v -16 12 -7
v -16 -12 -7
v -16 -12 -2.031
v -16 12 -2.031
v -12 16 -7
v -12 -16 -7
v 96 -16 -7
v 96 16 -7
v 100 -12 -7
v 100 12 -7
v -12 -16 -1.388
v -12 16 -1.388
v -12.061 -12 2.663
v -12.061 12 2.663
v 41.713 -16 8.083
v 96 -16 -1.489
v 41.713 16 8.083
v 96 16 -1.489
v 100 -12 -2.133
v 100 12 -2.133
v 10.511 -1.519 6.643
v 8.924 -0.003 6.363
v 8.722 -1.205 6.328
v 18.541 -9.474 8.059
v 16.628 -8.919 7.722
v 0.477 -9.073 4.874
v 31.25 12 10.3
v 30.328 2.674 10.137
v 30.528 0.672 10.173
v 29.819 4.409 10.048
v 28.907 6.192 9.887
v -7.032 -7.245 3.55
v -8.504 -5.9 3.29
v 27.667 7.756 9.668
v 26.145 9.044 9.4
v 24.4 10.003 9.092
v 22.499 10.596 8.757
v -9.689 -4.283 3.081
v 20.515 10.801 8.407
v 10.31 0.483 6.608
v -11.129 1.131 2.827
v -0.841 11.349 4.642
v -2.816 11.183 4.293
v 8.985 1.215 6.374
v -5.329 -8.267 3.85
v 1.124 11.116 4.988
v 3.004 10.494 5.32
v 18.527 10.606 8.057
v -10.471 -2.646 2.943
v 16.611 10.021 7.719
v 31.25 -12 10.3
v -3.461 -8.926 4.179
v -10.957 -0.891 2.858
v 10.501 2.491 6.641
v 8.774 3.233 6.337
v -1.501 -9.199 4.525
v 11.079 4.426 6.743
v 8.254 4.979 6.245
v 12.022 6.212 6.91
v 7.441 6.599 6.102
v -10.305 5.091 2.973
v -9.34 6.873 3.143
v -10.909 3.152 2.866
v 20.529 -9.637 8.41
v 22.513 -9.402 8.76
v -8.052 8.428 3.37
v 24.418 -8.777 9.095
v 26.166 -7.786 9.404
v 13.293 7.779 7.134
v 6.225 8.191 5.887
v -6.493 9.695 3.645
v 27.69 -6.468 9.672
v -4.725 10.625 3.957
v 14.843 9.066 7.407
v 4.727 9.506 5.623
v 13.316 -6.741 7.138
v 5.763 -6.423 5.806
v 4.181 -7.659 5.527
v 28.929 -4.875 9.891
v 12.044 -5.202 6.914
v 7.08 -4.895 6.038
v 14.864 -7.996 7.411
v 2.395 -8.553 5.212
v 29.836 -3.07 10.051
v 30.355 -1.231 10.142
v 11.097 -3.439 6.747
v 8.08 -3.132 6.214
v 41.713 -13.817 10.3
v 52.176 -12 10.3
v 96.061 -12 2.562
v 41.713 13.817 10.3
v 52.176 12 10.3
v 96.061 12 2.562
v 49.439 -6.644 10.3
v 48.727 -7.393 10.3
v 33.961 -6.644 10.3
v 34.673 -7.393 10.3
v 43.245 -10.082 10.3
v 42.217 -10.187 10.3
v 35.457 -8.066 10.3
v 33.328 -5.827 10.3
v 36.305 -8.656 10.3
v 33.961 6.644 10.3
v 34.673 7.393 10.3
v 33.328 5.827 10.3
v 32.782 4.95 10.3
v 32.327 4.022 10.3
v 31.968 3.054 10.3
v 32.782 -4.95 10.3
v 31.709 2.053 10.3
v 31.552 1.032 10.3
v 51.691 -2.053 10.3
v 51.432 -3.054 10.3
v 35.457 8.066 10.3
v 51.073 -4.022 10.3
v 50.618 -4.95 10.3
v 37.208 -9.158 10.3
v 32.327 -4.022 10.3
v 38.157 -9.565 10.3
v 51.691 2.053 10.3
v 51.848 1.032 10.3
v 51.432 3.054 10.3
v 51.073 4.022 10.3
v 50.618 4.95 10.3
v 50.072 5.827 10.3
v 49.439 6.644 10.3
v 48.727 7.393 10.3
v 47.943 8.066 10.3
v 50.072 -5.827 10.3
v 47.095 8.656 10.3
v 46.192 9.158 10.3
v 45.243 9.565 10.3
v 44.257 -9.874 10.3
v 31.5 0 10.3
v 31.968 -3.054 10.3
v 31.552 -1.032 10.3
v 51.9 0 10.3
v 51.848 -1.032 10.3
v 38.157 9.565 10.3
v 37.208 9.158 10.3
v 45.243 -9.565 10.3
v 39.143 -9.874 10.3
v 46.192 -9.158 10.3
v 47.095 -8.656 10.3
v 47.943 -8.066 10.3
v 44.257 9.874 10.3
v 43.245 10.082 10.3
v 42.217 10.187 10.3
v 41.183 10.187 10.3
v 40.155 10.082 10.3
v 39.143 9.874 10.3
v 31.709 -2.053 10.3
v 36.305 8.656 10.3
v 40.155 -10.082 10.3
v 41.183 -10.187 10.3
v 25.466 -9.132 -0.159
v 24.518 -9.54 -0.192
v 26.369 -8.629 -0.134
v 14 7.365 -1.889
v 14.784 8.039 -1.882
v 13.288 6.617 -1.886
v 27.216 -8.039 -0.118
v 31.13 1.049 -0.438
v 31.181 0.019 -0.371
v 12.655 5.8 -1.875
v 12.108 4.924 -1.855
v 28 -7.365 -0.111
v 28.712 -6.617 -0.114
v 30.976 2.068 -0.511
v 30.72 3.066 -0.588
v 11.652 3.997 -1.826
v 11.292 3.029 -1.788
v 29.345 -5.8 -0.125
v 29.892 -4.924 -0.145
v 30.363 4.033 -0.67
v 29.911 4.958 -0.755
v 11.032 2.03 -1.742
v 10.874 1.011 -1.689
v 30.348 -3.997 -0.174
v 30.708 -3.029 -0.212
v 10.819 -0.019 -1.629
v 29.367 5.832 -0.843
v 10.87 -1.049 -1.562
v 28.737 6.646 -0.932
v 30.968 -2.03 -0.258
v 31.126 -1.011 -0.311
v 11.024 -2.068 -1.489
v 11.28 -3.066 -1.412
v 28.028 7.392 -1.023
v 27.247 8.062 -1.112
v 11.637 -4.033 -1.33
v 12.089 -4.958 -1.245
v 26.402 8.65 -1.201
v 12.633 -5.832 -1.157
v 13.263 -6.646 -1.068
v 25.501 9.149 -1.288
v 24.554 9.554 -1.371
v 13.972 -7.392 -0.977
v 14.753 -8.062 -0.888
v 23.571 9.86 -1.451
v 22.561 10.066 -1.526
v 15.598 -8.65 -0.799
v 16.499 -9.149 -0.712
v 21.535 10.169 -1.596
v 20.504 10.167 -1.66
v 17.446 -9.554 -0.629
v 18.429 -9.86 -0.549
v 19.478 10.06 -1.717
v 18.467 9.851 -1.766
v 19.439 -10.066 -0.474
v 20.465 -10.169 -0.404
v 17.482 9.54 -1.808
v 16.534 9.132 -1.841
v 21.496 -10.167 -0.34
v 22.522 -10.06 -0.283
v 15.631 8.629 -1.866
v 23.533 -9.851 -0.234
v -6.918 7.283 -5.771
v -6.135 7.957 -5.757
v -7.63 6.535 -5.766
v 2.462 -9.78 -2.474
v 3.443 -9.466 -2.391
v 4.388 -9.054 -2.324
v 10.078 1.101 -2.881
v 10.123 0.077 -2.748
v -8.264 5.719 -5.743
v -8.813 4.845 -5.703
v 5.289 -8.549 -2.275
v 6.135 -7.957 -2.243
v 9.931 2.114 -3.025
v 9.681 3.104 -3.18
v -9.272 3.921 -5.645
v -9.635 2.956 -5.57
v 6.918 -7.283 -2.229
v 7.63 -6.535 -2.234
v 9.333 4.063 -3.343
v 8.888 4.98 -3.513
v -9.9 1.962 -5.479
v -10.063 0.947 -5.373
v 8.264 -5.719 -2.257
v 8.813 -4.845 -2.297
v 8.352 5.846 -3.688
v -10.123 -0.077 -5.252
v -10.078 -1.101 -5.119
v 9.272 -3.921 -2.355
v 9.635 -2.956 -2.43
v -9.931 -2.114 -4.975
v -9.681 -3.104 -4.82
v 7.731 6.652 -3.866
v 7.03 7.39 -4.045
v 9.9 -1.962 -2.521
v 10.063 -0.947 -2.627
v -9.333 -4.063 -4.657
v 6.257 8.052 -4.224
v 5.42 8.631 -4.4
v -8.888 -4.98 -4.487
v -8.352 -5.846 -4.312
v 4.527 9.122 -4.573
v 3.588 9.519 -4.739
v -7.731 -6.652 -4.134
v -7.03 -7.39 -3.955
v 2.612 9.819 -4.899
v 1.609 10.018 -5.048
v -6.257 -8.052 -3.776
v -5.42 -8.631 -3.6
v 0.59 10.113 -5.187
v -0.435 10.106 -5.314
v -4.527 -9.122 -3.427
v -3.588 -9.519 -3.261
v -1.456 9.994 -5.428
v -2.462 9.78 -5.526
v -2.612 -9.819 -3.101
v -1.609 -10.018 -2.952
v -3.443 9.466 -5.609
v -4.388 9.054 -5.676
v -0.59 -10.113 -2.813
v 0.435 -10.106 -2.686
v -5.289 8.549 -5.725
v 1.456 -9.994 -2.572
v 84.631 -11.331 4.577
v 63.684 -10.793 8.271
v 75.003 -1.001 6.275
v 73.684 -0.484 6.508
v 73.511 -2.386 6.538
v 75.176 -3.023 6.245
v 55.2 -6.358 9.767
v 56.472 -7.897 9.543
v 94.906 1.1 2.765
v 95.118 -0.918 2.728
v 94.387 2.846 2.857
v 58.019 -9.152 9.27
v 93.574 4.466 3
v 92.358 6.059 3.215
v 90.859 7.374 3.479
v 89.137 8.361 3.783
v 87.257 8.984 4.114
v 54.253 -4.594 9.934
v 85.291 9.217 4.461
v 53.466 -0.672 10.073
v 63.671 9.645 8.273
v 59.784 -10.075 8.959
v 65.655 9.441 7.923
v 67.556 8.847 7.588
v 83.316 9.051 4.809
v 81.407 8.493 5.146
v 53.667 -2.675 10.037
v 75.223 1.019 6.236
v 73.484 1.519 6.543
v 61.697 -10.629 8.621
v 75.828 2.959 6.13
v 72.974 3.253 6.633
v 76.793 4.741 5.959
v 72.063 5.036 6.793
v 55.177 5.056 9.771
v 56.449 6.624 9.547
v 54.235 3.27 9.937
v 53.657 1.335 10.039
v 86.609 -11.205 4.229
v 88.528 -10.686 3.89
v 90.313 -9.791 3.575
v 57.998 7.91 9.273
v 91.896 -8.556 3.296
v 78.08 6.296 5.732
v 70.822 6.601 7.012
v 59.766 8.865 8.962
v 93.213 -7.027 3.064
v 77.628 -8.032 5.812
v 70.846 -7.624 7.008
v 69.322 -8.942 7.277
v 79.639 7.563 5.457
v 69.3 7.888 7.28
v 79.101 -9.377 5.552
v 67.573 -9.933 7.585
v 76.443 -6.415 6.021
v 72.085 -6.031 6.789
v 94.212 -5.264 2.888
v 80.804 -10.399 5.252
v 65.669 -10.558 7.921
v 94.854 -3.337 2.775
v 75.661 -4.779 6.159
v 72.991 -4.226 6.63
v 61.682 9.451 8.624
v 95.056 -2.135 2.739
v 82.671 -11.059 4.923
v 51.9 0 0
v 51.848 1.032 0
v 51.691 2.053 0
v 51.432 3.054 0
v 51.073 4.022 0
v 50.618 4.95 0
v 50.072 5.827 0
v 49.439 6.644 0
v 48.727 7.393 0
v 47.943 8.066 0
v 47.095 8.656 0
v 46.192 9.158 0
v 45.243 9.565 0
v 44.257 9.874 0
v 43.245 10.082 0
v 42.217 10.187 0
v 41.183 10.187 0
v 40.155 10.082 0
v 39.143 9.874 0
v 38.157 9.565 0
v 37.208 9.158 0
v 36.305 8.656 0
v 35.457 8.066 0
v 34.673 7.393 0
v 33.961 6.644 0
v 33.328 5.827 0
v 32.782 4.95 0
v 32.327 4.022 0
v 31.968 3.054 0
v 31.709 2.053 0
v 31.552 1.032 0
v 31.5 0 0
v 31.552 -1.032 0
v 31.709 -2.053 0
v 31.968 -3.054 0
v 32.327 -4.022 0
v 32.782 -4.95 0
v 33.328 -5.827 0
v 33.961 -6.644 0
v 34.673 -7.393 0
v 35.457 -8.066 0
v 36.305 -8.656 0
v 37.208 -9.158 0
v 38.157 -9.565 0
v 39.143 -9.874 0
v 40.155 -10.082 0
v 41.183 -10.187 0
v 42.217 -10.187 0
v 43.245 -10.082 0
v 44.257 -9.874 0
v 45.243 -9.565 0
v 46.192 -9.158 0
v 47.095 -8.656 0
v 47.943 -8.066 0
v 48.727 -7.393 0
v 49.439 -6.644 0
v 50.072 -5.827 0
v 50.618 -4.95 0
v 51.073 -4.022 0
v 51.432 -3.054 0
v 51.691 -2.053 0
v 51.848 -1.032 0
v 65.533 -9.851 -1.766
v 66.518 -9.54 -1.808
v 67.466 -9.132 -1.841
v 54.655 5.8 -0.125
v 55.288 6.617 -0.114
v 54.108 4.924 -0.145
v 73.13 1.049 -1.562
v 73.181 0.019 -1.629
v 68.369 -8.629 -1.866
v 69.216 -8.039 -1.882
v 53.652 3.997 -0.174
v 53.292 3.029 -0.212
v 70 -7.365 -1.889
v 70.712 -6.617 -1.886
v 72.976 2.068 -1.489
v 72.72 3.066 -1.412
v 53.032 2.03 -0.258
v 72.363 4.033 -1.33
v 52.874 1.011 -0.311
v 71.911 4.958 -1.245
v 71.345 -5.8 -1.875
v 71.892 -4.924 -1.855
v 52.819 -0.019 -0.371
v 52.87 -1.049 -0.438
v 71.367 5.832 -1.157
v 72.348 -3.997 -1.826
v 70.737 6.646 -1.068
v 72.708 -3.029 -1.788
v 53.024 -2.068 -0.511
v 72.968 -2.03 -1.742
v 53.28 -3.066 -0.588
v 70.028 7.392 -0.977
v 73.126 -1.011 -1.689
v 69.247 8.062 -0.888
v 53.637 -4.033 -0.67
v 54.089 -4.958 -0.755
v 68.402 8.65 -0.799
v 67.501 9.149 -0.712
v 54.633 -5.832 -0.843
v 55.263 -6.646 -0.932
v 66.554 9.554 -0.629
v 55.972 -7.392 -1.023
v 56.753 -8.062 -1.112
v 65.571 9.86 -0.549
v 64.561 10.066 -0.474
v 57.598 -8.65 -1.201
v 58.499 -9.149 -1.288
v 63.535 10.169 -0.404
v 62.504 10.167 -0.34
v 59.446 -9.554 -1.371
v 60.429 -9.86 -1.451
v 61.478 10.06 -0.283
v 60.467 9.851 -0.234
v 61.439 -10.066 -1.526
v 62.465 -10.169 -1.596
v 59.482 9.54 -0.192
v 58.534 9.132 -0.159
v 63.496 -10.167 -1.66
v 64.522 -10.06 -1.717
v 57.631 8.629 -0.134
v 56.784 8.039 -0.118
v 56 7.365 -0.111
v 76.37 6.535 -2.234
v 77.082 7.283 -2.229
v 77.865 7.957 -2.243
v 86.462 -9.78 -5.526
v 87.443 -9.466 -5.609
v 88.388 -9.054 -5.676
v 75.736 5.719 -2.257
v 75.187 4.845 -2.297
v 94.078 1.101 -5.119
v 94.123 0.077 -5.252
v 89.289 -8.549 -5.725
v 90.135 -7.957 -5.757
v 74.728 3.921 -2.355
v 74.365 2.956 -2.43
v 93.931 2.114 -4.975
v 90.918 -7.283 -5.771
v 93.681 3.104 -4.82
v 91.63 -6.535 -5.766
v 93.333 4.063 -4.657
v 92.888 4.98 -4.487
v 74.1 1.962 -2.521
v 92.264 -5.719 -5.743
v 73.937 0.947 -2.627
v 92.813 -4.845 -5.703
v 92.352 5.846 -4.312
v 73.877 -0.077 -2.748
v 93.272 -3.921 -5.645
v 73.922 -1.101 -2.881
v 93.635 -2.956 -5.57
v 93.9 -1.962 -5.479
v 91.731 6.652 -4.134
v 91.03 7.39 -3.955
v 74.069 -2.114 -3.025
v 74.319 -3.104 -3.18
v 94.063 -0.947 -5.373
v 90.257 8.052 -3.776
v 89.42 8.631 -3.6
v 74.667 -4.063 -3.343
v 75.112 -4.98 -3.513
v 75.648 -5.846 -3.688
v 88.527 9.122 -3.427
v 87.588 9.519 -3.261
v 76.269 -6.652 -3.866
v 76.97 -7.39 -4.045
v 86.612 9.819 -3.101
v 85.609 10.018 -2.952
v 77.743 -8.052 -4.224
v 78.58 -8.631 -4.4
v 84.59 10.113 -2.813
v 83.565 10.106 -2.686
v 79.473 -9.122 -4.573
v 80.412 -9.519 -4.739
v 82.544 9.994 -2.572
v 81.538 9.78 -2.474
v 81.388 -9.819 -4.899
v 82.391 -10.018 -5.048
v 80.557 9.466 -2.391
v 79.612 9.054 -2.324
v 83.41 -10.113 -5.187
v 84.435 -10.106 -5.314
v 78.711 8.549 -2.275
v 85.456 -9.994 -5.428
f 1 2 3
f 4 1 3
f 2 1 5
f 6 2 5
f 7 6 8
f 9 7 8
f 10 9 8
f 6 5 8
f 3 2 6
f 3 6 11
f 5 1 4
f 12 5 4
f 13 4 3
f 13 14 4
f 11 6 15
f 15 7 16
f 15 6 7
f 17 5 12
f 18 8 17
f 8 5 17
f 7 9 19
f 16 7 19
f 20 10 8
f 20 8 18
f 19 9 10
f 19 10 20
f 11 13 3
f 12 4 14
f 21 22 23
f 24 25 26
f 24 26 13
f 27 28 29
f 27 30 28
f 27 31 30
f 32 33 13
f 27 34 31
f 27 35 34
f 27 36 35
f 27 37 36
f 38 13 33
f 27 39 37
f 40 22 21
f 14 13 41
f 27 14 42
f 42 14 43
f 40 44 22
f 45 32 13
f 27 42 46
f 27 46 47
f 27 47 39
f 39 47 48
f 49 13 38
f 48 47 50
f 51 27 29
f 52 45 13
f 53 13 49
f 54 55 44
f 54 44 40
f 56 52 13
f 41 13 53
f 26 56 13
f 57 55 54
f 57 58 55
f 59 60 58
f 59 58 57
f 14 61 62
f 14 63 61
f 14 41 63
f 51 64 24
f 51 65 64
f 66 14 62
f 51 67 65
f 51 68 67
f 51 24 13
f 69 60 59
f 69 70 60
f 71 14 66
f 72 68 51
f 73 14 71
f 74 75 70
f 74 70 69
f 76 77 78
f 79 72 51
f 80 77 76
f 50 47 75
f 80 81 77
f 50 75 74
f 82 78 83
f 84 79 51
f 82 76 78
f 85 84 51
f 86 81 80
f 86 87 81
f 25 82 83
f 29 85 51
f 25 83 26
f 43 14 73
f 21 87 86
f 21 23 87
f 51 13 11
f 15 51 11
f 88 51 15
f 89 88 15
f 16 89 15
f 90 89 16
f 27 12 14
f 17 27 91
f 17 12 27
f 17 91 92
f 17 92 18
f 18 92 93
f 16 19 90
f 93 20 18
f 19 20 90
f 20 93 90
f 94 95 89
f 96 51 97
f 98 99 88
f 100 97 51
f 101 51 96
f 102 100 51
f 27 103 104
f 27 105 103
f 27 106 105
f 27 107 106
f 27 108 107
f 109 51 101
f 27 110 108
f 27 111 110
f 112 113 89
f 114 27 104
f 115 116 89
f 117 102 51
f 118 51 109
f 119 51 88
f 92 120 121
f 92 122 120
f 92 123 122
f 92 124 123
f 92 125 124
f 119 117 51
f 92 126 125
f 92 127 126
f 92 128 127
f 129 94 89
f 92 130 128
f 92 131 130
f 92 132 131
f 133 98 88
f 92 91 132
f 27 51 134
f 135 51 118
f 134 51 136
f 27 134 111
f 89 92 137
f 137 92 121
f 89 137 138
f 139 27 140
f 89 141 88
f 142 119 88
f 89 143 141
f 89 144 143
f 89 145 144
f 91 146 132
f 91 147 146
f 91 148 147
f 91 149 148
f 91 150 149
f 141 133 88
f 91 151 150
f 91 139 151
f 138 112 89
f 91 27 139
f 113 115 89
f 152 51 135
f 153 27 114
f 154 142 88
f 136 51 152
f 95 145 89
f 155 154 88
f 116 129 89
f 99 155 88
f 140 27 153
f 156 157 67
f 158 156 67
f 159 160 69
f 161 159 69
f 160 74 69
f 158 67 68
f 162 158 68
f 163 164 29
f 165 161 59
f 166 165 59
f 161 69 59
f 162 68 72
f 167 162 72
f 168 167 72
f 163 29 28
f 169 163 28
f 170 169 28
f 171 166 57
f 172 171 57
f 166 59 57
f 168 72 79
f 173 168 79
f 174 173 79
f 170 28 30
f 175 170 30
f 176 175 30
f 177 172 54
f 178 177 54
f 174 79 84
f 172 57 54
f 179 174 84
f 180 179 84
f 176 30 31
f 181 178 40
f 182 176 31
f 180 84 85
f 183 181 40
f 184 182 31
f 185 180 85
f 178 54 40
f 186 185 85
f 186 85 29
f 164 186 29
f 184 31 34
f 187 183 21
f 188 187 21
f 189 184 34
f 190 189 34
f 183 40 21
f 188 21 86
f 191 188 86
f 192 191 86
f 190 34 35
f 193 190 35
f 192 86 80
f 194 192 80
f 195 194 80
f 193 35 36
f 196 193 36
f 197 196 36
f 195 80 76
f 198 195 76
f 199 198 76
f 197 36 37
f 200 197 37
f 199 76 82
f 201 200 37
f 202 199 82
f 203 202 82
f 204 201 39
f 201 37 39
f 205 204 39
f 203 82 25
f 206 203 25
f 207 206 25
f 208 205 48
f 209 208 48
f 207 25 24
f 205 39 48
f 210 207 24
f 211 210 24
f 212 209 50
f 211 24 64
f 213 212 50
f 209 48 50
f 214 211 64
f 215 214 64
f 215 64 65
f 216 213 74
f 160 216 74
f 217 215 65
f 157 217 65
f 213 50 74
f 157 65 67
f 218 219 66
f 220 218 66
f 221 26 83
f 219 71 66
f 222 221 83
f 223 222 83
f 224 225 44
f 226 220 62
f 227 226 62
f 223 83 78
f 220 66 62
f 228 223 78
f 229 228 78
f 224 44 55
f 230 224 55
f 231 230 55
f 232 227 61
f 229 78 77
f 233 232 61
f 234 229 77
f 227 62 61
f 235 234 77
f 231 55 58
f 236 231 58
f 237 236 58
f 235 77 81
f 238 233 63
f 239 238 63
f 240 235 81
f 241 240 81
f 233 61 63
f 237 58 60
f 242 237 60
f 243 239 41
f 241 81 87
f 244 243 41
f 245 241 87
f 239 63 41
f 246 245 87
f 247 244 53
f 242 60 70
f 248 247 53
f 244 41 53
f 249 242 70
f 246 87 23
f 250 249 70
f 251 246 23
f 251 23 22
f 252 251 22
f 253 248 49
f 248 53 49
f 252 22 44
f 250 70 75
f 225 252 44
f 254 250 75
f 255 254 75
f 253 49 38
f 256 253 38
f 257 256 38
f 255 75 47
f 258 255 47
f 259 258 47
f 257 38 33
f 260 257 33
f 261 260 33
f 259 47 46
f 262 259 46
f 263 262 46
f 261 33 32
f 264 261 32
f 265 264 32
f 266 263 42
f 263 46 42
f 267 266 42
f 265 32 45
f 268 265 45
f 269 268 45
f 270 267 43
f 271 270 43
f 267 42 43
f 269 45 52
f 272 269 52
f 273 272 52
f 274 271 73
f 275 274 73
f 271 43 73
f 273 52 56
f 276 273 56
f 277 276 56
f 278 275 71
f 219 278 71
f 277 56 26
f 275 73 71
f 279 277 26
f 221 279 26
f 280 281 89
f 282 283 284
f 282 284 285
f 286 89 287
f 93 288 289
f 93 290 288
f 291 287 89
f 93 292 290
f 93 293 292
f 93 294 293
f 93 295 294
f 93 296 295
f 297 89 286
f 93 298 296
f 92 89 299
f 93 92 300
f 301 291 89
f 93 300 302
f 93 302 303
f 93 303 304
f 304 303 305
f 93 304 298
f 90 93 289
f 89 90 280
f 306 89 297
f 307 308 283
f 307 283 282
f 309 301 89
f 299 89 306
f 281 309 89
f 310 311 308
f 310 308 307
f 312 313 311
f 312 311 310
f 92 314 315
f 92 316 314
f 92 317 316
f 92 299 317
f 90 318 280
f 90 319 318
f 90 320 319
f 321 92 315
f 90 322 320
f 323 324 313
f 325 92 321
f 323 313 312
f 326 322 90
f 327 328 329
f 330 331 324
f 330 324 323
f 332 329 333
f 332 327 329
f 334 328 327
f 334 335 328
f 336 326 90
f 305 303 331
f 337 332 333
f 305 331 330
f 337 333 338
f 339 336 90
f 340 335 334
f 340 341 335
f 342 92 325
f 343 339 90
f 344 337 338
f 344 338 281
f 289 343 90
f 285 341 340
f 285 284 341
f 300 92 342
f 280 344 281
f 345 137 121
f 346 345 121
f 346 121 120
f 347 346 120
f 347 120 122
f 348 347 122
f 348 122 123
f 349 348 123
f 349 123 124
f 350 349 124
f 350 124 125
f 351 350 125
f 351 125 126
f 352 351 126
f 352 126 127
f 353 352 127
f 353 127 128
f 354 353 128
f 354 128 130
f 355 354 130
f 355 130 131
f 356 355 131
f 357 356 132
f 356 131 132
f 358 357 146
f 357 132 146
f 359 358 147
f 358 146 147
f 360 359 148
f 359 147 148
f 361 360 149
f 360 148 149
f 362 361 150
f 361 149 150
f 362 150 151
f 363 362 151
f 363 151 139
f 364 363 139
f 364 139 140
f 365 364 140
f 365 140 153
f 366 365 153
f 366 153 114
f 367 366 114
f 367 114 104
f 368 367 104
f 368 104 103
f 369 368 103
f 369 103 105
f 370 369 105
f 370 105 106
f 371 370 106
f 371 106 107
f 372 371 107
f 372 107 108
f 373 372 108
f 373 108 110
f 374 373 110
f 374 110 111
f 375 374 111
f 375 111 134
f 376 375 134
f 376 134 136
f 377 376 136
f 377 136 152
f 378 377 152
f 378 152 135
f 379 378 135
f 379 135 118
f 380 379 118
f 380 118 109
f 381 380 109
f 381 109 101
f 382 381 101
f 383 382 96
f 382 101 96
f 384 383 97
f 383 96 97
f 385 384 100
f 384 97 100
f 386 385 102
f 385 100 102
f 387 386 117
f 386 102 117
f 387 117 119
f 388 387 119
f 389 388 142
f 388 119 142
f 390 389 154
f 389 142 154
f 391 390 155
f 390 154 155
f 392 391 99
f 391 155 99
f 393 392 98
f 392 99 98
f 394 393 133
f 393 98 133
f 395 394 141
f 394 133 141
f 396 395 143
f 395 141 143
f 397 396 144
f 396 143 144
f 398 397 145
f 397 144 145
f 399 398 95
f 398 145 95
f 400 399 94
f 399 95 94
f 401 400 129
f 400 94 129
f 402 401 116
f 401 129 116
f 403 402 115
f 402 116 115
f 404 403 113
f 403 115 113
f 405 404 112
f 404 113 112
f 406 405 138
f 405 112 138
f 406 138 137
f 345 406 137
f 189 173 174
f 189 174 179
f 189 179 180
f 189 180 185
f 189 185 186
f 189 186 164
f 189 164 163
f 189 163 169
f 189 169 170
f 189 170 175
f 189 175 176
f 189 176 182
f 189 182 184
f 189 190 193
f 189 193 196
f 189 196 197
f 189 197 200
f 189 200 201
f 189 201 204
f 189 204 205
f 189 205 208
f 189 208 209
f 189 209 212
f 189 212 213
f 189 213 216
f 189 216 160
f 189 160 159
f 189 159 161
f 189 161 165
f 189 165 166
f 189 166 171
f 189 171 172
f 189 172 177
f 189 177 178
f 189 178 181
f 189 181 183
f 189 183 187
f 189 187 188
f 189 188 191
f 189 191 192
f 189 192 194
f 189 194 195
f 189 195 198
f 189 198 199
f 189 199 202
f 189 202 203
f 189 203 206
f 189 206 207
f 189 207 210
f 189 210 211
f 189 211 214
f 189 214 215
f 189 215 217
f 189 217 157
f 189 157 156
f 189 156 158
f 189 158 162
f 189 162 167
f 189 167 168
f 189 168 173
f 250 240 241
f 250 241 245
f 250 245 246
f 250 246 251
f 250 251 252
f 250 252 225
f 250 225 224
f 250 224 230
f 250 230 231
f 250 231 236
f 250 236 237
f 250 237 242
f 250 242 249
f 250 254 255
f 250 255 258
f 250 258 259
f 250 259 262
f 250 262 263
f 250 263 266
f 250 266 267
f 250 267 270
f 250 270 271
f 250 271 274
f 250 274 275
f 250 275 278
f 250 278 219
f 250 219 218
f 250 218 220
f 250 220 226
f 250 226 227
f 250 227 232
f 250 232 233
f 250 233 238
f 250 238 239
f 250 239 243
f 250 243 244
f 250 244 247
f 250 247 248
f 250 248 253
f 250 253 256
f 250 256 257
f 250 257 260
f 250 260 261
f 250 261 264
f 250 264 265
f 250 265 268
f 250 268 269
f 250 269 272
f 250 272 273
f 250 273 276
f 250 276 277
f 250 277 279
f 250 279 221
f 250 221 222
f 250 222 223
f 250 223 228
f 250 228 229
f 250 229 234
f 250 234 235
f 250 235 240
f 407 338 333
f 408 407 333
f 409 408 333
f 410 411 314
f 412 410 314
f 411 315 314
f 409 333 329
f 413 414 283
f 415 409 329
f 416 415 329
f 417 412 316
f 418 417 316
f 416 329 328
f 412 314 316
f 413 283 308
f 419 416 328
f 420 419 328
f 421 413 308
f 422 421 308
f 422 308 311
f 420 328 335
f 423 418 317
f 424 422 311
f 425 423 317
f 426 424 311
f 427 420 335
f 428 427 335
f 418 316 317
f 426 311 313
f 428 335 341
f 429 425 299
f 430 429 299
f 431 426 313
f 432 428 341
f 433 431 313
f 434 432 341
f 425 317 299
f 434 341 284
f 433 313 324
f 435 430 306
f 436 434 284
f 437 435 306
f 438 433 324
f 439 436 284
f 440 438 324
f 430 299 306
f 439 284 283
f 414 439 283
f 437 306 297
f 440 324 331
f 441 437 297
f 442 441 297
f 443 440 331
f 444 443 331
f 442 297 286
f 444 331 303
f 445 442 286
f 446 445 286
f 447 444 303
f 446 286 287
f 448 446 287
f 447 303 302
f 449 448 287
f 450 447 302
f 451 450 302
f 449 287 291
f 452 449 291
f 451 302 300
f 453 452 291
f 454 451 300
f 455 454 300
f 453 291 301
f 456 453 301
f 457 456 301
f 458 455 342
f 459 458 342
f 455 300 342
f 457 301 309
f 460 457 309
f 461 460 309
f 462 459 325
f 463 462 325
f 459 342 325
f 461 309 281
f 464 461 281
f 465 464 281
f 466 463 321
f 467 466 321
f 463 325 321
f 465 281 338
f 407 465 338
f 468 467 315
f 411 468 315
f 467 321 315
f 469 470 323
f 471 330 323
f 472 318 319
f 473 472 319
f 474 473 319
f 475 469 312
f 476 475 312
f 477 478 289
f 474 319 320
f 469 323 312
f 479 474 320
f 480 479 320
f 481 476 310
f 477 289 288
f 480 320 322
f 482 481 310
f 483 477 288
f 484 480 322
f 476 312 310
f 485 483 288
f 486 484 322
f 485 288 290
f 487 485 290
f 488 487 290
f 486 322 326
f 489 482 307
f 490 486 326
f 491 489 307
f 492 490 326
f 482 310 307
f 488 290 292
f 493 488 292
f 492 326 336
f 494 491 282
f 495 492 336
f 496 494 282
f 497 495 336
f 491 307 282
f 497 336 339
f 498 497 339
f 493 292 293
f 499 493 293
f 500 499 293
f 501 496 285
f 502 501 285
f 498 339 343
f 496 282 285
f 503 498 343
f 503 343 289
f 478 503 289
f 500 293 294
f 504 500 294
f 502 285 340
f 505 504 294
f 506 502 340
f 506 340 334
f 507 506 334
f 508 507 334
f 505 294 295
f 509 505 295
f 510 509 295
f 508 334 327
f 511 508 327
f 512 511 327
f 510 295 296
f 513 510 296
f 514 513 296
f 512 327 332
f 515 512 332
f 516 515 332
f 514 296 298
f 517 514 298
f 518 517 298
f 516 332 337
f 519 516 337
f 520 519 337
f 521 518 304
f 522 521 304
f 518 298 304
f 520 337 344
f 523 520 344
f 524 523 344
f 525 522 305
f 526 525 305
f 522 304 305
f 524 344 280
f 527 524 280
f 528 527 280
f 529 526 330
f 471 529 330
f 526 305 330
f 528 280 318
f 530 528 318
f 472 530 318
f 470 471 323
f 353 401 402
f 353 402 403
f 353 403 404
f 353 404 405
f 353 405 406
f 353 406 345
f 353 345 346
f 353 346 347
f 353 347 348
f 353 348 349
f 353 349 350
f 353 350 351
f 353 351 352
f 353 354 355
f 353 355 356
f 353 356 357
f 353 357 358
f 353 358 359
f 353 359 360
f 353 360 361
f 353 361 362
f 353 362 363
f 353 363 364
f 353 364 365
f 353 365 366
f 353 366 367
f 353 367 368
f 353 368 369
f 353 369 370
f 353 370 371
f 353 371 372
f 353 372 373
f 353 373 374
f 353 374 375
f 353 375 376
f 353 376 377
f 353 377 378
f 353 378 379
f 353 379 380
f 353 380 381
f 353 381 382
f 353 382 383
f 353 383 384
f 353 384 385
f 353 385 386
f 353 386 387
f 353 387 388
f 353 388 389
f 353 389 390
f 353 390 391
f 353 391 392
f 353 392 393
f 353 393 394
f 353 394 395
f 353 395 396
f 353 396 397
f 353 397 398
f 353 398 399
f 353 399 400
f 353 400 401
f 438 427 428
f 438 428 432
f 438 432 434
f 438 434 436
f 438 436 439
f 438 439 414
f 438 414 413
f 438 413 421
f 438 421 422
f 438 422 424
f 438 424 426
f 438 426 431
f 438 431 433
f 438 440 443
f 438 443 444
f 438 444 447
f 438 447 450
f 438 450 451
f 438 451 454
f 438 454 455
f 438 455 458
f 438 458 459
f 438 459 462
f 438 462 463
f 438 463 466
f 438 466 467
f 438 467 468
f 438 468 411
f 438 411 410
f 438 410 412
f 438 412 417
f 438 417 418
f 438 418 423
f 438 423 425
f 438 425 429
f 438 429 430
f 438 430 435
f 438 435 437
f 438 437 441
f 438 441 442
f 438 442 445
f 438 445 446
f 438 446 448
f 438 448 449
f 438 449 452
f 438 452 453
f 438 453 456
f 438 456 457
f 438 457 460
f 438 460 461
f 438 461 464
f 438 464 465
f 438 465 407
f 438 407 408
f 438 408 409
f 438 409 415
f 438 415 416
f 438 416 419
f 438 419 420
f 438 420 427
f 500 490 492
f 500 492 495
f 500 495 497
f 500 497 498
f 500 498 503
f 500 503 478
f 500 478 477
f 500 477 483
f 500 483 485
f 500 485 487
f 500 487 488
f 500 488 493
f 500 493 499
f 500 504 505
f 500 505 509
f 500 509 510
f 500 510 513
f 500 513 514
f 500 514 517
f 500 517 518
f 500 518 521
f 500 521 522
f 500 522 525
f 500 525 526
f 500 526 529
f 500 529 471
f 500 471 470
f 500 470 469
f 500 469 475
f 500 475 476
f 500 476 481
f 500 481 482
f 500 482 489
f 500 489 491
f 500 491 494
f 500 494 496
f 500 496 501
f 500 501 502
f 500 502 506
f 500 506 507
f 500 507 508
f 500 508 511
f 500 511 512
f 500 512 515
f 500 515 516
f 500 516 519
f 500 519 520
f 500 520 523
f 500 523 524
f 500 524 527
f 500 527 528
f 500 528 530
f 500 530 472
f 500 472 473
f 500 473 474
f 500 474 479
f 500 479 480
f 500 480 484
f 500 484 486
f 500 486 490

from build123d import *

# Parameters (mm, degrees)
BOX003_W                    = 40
BOX003_H                    = 40
BOX003_DEPTH                = 10
CYLINDER014_R               = 10.2
CYLINDER014_DEPTH           = 20
CYLINDER014_ROLL_ANGLE      = 7.107076
CYLINDER014_PITCH_ANGLE     = 7.053022
CYLINDER014_PLACEMENT_ANGLE = 0.438549
CYLINDER013_R               = 10.2
CYLINDER013_DEPTH           = 20
CYLINDER013_ROLL_ANGLE      = 3.540025
CYLINDER013_PITCH_ANGLE     = 3.533287
CYLINDER013_PLACEMENT_ANGLE = 0.109222
CYLINDER012_R               = 10.2
CYLINDER012_DEPTH           = 20
CYLINDER011_R               = 10.2
CYLINDER011_DEPTH           = 20
CYLINDER011_ROLL_ANGLE      = -3.540025
CYLINDER011_PITCH_ANGLE     = -3.533287
CYLINDER011_PLACEMENT_ANGLE = 0.109222
CYLINDER010_R               = 10.2
CYLINDER010_DEPTH           = 20
CYLINDER010_ROLL_ANGLE      = -7.107076
CYLINDER010_PITCH_ANGLE     = -7.053022
CYLINDER010_PLACEMENT_ANGLE = 0.438549
BOX002_W                    = 116
BOX002_H                    = 32
BOX002_DEPTH                = 14
BOX002_PITCH_ANGLE          = 10
BOX001_W                    = 116
BOX001_H                    = 32
BOX001_DEPTH                = 14
BOX001_PITCH_ANGLE          = -10
BOX_W                       = 116
BOX_H                       = 32
BOX_DEPTH                   = 20
CHAMFER_SIZE                = 4


with BuildPart() as cube003:
    # Box003 → Box003 (new body)
    with BuildSketch(Plane(origin=(20, -20, 10.3), x_dir=(1, 0, 0), z_dir=(0, 0, 1))):
        with Locations((20, 20)):
            Rectangle(BOX003_W, BOX003_H)
    extrude(amount=BOX003_DEPTH)


with BuildPart() as cylinder014:
    # Cylinder014 → Cylinder014 (new body)
    with BuildSketch(Plane.XY):
        Circle(CYLINDER014_R)
    extrude(amount=CYLINDER014_DEPTH)


with BuildPart() as cylinder014_1:
    # Cylinder014 roll: moved
    add(cylinder014.part.rotate(Axis((0, 0, 0), (1, 0, 0)), CYLINDER014_ROLL_ANGLE))


with BuildPart() as cylinder014_2:
    # Cylinder014 pitch: moved
    add(cylinder014_1.part.rotate(Axis((0, 0, 0), (0, 1, 0)), CYLINDER014_PITCH_ANGLE))


with BuildPart() as cylinder014_3:
    # Cylinder014 placement: moved
    add(cylinder014_2.part.moved(Location((84, 0, -4))).rotate(Axis((84, 0, -4), (0, 0, 1)), CYLINDER014_PLACEMENT_ANGLE))


with BuildPart() as cylinder013:
    # Cylinder013 → Cylinder013 (new body)
    with BuildSketch(Plane.XY):
        Circle(CYLINDER013_R)
    extrude(amount=CYLINDER013_DEPTH)


with BuildPart() as cylinder013_1:
    # Cylinder013 roll: moved
    add(cylinder013.part.rotate(Axis((0, 0, 0), (1, 0, 0)), CYLINDER013_ROLL_ANGLE))


with BuildPart() as cylinder013_2:
    # Cylinder013 pitch: moved
    add(cylinder013_1.part.rotate(Axis((0, 0, 0), (0, 1, 0)), CYLINDER013_PITCH_ANGLE))


with BuildPart() as cylinder013_3:
    # Cylinder013 placement: moved
    add(cylinder013_2.part.moved(Location((63, 0, -1))).rotate(Axis((63, 0, -1), (0, 0, 1)), CYLINDER013_PLACEMENT_ANGLE))


with BuildPart() as cylinder012:
    # Cylinder012 → Cylinder012 (new body)
    with BuildSketch(Plane(origin=(41.7, 0, 0), x_dir=(1, 0, 0), z_dir=(0, 0, 1))):
        Circle(CYLINDER012_R)
    extrude(amount=CYLINDER012_DEPTH)


with BuildPart() as cylinder011:
    # Cylinder011 → Cylinder011 (new body)
    with BuildSketch(Plane.XY):
        Circle(CYLINDER011_R)
    extrude(amount=CYLINDER011_DEPTH)


with BuildPart() as cylinder011_1:
    # Cylinder011 roll: moved
    add(cylinder011.part.rotate(Axis((0, 0, 0), (1, 0, 0)), CYLINDER011_ROLL_ANGLE))


with BuildPart() as cylinder011_2:
    # Cylinder011 pitch: moved
    add(cylinder011_1.part.rotate(Axis((0, 0, 0), (0, 1, 0)), CYLINDER011_PITCH_ANGLE))


with BuildPart() as cylinder011_3:
    # Cylinder011 placement: moved
    add(cylinder011_2.part.moved(Location((21, 0, -1))).rotate(Axis((21, 0, -1), (0, 0, 1)), CYLINDER011_PLACEMENT_ANGLE))


with BuildPart() as cylinder010:
    # Cylinder010 → Cylinder010 (new body)
    with BuildSketch(Plane.XY):
        Circle(CYLINDER010_R)
    extrude(amount=CYLINDER010_DEPTH)


with BuildPart() as cylinder010_1:
    # Cylinder010 roll: moved
    add(cylinder010.part.rotate(Axis((0, 0, 0), (1, 0, 0)), CYLINDER010_ROLL_ANGLE))


with BuildPart() as cylinder010_2:
    # Cylinder010 pitch: moved
    add(cylinder010_1.part.rotate(Axis((0, 0, 0), (0, 1, 0)), CYLINDER010_PITCH_ANGLE))


with BuildPart() as cylinder010_3:
    # Cylinder010 placement: moved
    add(cylinder010_2.part.moved(Location((0, 0, -4))).rotate(Axis((0, 0, -4), (0, 0, 1)), CYLINDER010_PLACEMENT_ANGLE))


with BuildPart() as cube002:
    # Box002 → Box002 (new body)
    with BuildSketch(Plane.XY):
        with Locations((58, 16)):
            Rectangle(BOX002_W, BOX002_H)
    extrude(amount=BOX002_DEPTH)


with BuildPart() as cube002_1:
    # Box002 pitch: moved
    add(cube002.part.rotate(Axis((0, 0, 0), (0, 1, 0)), BOX002_PITCH_ANGLE))


with BuildPart() as cube002_2:
    # Box002 placement: moved
    add(cube002_1.part.moved(Location((0, -16, 19.5))))


with BuildPart() as cube001:
    # Box001 → Box001 (new body)
    with BuildSketch(Plane.XY):
        with Locations((58, 16)):
            Rectangle(BOX001_W, BOX001_H)
    extrude(amount=BOX001_DEPTH)


with BuildPart() as cube001_1:
    # Box001 pitch: moved
    add(cube001.part.rotate(Axis((0, 0, 0), (0, 1, 0)), BOX001_PITCH_ANGLE))


with BuildPart() as cube001_2:
    # Box001 placement: moved
    add(cube001_1.part.moved(Location((-30, -16, -0.5))))


with BuildPart() as cut011:
    # Box → Box (new body)
    with BuildSketch(Plane(origin=(-16, -16, -7), x_dir=(1, 0, 0), z_dir=(0, 0, 1))):
        with Locations((58, 16)):
            Rectangle(BOX_W, BOX_H)
    extrude(amount=BOX_DEPTH)

    # Cut005: cut Cube001
    add(cube001_2.part, mode=Mode.SUBTRACT)

    # Cut006: cut Cube002
    add(cube002_2.part, mode=Mode.SUBTRACT)

    # Chamfer
    chamfer_edges = [cut011.edges().sort_by_distance(p)[0] for p in [
        (-16, -16, -2.515711),
        (-16, 0, 1.968578),
        (-16, 16, -2.515711),
        (100, -16, -2.566349),
        (70.856409, -16, 7.006103),
        (12.856409, -16, 7.056741),
        (12.856409, 16, 7.056741),
        (100, 16, -2.566349),
        (70.856409, 16, 7.006103),
        (100, 0, 1.867302),
    ]]
    chamfer(chamfer_edges, length=CHAMFER_SIZE)

    # Cut: cut Cylinder010
    add(cylinder010_3.part, mode=Mode.SUBTRACT)

    # Cut007: cut Cylinder011
    add(cylinder011_3.part, mode=Mode.SUBTRACT)

    # Cut008: cut Cylinder012
    add(cylinder012.part, mode=Mode.SUBTRACT)

    # Cut009: cut Cylinder013
    add(cylinder013_3.part, mode=Mode.SUBTRACT)

    # Cut010: cut Cylinder014
    add(cylinder014_3.part, mode=Mode.SUBTRACT)

    # Cut011: cut Cube003
    add(cube003.part, mode=Mode.SUBTRACT)


solid = cut011.part
